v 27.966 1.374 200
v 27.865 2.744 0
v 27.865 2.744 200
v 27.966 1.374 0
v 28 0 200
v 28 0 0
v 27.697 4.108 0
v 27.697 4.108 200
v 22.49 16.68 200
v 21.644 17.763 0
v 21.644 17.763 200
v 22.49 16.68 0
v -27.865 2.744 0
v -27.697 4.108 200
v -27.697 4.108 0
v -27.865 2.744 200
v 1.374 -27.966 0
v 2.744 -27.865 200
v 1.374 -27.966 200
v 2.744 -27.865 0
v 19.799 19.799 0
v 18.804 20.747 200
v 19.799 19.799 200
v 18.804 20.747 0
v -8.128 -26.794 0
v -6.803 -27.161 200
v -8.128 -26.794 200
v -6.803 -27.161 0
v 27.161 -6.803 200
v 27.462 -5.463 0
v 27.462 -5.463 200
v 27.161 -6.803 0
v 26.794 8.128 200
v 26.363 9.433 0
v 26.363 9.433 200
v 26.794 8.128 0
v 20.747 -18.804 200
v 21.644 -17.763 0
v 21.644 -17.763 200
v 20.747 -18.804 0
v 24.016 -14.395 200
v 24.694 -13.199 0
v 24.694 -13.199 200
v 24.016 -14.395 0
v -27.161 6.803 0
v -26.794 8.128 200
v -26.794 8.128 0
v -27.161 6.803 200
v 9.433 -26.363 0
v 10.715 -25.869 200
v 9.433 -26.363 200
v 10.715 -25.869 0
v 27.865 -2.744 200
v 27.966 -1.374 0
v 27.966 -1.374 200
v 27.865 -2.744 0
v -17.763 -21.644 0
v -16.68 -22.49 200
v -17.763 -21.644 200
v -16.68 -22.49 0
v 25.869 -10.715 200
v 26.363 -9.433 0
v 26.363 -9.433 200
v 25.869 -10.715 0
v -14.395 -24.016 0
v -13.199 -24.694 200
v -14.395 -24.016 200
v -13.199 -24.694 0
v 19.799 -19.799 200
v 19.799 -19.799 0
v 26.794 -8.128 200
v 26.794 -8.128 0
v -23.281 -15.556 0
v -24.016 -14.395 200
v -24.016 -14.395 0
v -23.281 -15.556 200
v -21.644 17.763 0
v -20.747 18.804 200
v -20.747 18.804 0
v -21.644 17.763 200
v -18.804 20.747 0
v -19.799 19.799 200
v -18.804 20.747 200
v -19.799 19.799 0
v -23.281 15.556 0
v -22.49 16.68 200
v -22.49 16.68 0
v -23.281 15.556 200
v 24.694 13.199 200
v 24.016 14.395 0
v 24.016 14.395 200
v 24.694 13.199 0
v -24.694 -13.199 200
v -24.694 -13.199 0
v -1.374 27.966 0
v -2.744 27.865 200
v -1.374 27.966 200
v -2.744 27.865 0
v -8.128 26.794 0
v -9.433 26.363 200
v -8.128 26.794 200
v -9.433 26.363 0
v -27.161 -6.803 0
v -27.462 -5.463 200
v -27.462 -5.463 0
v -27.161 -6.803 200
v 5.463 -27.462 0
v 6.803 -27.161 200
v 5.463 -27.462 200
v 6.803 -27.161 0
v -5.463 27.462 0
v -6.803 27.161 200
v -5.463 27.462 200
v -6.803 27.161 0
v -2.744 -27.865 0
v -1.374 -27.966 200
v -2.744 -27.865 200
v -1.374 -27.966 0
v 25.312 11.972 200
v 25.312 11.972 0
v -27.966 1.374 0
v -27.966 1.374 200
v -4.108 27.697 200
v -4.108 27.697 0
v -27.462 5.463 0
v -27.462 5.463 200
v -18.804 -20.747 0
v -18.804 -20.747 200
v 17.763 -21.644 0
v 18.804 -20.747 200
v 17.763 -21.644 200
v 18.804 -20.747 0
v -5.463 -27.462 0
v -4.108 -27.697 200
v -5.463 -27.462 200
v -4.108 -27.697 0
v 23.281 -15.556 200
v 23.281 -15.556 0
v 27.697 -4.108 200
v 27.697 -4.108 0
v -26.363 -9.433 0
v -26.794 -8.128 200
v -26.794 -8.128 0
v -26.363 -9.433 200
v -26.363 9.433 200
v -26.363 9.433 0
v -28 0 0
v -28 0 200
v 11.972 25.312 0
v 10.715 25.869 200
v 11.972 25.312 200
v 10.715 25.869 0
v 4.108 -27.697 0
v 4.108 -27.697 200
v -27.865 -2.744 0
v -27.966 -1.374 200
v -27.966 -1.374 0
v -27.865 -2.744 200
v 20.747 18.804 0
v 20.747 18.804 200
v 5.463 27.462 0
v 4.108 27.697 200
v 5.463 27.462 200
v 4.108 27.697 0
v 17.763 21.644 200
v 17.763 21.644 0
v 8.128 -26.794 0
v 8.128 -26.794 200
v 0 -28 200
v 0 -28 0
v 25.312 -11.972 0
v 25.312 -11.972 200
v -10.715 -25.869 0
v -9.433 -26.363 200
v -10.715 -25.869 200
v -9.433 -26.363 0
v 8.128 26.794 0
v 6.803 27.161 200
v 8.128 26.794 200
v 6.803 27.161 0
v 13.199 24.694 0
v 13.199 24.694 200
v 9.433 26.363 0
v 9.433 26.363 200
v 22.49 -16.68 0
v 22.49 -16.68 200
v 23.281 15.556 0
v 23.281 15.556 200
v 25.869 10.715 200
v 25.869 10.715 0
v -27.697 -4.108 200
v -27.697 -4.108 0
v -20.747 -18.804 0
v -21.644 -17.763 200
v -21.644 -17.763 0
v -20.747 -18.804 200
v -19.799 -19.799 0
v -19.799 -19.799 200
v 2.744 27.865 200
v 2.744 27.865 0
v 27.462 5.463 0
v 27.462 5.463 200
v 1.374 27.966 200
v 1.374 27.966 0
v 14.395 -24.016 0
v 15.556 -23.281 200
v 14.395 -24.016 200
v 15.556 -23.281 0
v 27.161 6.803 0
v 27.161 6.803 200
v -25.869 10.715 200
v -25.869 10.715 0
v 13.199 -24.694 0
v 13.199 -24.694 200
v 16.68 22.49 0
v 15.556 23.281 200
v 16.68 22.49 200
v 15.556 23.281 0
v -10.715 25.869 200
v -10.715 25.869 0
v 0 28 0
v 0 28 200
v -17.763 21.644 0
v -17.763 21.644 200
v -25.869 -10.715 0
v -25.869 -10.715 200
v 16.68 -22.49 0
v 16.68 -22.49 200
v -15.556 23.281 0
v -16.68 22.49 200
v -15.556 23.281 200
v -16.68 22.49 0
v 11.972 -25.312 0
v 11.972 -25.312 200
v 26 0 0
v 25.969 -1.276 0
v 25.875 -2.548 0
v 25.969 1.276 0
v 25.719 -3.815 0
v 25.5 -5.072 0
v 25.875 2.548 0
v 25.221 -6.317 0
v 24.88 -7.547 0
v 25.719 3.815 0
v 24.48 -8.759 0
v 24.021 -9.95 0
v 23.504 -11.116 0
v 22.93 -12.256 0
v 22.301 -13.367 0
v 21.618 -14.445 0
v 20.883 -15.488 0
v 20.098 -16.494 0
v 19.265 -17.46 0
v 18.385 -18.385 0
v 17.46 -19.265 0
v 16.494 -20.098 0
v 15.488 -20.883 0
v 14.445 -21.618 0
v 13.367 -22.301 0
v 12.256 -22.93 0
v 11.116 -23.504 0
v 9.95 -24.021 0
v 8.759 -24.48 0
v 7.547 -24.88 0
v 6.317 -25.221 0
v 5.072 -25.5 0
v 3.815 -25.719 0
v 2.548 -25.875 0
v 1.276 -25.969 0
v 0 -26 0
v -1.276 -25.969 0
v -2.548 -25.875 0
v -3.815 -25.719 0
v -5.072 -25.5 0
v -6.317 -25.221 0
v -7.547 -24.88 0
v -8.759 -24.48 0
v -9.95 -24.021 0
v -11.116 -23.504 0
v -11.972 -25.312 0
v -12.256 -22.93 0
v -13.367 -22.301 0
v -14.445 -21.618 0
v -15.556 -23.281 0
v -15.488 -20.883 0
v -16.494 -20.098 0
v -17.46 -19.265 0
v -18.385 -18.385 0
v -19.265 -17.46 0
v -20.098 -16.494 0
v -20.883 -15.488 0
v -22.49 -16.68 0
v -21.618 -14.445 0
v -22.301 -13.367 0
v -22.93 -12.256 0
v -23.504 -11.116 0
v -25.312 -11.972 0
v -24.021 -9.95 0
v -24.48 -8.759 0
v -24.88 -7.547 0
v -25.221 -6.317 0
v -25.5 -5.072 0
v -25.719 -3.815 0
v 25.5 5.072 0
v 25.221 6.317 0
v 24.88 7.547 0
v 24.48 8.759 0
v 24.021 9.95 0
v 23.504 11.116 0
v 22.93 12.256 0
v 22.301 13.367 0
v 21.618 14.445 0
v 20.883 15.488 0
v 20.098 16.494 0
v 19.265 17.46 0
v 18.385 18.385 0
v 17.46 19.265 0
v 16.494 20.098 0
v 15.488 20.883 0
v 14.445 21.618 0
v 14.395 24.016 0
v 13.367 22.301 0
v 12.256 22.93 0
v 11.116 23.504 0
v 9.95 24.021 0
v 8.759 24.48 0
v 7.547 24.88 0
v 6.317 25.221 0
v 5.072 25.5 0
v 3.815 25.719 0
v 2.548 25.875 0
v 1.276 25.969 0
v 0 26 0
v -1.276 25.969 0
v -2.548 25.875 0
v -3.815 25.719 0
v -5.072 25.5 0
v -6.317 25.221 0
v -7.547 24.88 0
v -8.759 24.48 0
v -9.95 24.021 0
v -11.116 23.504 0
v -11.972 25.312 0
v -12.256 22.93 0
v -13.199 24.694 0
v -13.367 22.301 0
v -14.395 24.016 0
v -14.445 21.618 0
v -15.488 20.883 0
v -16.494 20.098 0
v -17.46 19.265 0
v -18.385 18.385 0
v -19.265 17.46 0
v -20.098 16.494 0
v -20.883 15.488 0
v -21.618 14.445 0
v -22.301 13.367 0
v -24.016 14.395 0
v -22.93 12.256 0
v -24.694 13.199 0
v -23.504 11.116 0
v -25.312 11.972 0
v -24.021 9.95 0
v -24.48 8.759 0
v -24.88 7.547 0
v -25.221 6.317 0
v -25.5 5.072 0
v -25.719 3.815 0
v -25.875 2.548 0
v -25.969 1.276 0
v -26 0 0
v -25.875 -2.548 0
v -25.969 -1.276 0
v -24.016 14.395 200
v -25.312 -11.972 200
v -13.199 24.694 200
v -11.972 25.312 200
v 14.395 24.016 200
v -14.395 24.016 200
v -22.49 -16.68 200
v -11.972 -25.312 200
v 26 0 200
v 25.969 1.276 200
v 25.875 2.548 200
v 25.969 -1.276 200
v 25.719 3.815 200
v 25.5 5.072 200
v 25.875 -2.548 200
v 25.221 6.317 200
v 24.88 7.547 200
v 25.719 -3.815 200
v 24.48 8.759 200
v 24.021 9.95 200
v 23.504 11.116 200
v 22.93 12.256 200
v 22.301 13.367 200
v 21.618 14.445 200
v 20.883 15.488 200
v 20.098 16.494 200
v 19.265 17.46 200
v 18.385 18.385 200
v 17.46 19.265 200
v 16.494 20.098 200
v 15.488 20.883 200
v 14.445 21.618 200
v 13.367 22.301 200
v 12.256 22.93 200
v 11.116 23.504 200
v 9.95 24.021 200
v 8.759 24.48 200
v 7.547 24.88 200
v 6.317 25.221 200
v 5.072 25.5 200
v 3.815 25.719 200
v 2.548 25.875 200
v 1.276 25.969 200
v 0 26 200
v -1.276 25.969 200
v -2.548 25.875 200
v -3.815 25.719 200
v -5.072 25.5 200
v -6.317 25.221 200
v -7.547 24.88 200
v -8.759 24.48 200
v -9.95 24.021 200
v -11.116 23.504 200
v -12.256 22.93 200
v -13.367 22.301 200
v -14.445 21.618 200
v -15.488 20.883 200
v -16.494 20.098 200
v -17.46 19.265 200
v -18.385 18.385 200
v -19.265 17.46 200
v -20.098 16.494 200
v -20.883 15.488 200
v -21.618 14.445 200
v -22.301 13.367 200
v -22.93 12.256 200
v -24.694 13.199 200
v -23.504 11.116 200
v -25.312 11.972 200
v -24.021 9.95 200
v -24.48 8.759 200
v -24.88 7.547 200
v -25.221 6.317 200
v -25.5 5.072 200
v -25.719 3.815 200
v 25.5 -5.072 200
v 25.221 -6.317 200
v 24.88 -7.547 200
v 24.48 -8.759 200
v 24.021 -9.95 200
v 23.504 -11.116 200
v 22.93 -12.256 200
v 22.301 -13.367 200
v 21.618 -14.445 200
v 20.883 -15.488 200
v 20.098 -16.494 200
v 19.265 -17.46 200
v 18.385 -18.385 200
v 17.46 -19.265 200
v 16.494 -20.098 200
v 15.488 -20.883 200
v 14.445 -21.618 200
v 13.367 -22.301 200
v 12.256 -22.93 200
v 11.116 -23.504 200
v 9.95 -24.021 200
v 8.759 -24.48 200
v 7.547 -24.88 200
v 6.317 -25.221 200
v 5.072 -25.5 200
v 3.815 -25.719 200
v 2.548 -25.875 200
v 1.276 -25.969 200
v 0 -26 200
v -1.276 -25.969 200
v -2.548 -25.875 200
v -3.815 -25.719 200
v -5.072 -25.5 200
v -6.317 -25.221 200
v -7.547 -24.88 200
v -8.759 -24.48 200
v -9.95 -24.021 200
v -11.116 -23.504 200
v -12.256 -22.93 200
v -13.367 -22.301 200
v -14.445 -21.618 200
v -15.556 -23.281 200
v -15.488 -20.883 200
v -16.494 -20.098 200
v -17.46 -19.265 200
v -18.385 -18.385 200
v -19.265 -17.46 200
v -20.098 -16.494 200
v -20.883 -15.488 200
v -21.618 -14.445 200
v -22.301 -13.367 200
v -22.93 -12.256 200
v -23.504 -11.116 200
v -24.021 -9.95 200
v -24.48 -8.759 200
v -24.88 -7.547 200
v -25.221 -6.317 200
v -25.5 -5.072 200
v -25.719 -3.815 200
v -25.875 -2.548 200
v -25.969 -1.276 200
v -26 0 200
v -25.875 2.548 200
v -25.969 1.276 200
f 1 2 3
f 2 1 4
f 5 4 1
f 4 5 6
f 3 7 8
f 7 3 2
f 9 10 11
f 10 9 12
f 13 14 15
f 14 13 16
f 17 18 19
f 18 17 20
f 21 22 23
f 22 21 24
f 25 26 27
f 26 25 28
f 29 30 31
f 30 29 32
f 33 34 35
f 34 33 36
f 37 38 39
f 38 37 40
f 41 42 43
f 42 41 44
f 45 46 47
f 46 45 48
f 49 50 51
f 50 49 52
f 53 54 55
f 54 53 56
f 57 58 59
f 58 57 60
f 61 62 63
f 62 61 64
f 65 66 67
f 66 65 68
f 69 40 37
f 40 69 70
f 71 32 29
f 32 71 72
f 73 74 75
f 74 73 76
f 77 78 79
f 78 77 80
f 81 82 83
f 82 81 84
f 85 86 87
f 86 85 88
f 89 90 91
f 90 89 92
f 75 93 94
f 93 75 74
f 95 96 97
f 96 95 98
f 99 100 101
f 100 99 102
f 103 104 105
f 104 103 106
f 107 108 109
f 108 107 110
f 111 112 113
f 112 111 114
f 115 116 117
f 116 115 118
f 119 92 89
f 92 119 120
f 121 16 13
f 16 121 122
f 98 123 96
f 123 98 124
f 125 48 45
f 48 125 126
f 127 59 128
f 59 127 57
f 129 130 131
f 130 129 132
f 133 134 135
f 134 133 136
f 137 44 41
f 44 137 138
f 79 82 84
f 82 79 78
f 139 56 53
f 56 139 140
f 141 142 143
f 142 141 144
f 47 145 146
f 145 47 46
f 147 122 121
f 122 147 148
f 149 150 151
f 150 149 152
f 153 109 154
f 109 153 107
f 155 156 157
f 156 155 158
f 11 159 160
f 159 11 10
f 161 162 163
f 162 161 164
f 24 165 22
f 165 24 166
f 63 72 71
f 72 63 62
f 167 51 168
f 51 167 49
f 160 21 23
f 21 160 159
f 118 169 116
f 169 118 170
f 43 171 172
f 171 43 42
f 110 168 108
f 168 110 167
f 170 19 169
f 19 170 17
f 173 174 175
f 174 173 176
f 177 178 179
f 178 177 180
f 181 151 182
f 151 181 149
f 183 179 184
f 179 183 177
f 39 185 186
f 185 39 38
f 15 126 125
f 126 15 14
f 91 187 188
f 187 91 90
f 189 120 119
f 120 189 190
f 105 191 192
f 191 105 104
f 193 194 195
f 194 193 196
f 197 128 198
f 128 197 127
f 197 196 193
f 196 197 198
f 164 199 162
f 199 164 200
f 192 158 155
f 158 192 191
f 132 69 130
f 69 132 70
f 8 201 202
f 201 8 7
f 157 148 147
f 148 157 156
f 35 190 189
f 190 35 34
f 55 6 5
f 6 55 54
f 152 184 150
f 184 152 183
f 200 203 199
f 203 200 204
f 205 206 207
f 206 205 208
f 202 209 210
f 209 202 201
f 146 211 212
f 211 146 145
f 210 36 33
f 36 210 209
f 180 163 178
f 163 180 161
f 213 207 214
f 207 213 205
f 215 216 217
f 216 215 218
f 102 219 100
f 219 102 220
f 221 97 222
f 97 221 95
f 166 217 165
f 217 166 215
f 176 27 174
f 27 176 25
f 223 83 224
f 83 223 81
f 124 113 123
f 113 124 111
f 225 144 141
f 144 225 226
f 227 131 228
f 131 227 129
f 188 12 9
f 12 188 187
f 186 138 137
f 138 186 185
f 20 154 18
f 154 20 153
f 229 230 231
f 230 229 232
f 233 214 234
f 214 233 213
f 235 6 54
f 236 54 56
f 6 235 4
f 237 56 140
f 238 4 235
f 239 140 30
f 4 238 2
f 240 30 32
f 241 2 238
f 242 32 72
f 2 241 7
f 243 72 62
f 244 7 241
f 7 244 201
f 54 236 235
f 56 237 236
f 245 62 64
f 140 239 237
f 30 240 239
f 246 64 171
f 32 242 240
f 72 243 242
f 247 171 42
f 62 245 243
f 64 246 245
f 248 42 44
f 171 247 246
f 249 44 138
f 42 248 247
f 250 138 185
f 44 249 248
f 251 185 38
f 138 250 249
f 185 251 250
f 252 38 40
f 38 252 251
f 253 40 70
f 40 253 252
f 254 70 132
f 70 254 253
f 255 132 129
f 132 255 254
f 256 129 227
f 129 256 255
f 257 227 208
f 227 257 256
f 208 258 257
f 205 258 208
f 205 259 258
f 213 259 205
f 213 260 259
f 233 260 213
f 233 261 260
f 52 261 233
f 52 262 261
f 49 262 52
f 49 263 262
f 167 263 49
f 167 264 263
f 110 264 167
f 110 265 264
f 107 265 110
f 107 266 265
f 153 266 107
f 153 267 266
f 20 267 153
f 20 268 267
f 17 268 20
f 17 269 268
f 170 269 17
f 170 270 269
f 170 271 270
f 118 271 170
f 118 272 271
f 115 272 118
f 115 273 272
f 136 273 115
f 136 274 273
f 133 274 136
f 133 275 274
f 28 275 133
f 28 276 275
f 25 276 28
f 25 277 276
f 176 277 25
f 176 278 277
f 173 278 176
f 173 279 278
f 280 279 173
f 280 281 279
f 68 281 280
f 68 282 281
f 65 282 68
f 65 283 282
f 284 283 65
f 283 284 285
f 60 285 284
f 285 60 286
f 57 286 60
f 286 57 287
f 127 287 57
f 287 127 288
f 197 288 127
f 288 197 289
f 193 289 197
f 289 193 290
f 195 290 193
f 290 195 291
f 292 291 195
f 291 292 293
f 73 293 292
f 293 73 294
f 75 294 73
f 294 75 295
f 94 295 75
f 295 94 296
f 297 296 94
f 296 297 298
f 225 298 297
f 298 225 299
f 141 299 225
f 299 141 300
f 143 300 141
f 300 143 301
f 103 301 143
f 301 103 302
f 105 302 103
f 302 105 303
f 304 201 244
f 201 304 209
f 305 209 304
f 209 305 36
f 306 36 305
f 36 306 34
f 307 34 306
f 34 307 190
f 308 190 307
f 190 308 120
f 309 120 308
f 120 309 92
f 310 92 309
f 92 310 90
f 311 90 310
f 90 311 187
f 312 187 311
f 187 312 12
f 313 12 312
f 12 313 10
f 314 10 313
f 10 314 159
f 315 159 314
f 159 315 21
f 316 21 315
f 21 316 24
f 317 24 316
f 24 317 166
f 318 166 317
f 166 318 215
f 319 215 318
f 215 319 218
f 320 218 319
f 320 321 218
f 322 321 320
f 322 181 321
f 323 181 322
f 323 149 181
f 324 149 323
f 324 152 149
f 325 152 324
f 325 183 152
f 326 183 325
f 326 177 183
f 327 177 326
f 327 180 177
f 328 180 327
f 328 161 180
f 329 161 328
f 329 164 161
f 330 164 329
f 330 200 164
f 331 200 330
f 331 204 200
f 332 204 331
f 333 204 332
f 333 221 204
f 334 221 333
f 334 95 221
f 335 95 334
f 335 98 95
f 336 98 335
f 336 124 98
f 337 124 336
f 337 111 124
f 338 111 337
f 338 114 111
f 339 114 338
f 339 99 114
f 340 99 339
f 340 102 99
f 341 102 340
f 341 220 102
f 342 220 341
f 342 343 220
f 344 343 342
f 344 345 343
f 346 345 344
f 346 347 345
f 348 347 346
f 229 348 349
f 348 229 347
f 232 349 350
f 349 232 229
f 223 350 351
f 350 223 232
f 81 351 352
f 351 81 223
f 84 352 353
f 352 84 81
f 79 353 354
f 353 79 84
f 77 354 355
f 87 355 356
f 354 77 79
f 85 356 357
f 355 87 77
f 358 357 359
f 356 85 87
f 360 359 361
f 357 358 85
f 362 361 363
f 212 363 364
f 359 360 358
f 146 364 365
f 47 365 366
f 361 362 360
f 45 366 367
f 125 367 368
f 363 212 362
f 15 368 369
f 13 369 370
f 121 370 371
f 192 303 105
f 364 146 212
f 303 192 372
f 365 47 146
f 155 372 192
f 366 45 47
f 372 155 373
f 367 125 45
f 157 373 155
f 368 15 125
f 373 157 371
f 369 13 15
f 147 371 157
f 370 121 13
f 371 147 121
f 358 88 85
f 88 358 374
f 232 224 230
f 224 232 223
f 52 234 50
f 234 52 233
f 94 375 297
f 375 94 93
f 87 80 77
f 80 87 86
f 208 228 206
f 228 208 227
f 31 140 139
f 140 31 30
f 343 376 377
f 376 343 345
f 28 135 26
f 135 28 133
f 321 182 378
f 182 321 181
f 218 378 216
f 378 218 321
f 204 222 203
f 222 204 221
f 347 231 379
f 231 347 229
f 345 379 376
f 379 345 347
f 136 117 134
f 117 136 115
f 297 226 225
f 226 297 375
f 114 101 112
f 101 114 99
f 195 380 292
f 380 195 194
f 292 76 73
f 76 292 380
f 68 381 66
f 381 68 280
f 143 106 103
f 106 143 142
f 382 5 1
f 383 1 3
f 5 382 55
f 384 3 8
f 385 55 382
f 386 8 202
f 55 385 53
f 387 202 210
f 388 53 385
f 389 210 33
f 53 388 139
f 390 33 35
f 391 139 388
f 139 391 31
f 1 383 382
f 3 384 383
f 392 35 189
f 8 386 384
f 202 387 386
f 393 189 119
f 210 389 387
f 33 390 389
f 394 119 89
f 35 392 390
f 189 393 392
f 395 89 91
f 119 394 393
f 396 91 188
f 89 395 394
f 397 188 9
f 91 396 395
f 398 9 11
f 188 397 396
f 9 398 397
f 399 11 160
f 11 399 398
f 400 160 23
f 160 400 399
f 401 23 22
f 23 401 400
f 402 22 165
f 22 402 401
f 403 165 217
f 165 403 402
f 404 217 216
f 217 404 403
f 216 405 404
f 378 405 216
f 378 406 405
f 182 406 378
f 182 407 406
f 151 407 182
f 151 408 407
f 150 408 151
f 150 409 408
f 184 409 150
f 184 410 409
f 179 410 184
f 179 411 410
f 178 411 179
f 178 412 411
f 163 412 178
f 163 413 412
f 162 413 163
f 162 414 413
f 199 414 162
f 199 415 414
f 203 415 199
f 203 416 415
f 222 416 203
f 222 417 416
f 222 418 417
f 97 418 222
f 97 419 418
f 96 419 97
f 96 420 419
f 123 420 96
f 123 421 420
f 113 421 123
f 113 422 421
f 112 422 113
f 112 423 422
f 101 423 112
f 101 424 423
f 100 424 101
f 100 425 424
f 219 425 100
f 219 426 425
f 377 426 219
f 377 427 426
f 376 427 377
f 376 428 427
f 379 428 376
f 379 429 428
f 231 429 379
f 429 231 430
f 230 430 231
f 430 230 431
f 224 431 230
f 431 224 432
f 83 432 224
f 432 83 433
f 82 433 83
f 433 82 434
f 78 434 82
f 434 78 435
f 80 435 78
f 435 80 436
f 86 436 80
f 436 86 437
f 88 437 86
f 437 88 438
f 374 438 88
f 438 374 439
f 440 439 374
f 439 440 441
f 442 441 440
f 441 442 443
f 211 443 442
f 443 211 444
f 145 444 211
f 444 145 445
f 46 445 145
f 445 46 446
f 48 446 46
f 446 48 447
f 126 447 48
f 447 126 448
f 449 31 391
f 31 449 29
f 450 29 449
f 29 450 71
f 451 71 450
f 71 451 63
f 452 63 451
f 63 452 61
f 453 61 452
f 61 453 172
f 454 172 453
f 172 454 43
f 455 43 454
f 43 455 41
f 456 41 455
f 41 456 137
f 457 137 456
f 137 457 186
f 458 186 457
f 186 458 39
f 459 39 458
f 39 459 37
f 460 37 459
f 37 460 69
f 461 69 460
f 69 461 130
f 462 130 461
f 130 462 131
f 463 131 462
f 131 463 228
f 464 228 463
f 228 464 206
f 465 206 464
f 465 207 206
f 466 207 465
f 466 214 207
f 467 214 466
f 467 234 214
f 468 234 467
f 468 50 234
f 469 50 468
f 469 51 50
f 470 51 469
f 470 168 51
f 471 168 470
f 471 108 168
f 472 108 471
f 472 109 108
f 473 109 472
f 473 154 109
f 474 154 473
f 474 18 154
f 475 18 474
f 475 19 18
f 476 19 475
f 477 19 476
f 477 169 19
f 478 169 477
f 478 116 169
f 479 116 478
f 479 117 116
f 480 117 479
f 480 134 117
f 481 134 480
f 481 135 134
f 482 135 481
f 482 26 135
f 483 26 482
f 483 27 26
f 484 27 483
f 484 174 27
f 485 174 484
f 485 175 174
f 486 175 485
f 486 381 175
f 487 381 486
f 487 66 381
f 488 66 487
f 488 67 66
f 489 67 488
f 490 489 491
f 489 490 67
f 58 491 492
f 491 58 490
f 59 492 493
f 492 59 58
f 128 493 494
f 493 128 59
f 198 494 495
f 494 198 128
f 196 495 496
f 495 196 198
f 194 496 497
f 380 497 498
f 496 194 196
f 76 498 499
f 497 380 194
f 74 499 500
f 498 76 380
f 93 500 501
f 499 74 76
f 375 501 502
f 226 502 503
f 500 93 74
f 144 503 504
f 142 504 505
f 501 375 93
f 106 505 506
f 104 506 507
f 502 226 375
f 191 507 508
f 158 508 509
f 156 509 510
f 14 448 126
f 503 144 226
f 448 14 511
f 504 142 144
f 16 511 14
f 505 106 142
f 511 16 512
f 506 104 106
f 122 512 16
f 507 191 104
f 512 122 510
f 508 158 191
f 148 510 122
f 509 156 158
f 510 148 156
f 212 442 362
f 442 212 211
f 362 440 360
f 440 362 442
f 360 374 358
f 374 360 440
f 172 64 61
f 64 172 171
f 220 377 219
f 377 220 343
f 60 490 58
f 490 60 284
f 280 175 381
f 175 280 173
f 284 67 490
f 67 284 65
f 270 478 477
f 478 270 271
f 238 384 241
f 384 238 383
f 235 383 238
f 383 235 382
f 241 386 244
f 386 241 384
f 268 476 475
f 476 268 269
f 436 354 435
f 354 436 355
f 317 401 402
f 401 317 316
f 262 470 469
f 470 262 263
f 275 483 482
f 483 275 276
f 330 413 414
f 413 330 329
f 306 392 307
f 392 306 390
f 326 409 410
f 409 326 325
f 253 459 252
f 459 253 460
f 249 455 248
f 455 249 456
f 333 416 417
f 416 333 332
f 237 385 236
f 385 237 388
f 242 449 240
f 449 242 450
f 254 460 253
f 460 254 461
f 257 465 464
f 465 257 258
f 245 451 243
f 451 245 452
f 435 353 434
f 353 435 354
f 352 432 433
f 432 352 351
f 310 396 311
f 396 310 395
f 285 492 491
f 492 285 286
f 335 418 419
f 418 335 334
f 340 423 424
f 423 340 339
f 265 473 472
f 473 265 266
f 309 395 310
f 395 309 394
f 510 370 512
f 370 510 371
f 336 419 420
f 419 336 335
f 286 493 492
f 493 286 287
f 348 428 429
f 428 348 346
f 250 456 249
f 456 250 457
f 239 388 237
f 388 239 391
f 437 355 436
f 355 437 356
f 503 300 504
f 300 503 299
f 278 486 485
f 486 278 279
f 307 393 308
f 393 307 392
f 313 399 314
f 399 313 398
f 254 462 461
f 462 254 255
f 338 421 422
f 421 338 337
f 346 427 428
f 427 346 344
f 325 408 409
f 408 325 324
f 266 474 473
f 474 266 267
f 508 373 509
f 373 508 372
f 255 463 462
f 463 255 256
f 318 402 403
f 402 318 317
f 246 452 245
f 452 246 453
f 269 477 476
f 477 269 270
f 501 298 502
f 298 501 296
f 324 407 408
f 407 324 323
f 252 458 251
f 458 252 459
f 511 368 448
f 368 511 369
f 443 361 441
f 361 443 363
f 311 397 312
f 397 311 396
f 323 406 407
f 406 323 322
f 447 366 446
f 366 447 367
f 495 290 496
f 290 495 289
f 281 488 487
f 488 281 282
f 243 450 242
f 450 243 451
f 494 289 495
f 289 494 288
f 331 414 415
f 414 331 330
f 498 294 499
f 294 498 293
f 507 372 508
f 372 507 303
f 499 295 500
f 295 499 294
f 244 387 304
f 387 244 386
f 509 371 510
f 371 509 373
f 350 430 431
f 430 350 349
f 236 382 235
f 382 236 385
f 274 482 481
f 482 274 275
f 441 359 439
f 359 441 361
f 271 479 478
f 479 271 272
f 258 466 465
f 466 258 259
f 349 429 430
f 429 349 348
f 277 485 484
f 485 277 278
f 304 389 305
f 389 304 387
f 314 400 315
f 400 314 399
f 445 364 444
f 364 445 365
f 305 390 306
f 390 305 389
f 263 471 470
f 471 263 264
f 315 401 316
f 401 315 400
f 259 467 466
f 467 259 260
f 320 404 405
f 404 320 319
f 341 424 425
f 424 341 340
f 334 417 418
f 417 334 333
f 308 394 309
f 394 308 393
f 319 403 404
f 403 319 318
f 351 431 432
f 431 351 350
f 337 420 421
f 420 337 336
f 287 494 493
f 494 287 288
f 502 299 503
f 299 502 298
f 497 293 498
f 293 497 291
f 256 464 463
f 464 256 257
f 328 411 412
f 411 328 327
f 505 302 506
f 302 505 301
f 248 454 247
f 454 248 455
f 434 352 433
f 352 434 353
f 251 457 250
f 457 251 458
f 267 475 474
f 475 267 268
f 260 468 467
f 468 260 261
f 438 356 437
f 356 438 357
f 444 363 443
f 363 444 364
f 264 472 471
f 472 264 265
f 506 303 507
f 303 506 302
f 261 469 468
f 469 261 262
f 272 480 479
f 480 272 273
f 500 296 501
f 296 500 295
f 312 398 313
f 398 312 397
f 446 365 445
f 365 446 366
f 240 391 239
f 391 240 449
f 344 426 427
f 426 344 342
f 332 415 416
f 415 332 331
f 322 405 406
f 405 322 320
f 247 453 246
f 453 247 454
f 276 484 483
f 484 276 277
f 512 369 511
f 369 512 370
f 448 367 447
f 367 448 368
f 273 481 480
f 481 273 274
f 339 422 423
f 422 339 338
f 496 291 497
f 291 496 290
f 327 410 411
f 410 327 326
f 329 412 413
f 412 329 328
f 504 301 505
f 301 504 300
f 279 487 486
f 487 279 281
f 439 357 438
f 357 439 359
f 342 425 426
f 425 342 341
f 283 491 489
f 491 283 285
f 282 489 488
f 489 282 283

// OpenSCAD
// Galilean Main Tube (主镜筒)
// 全长200mm，普通3D打印机可竖立打印完成

tube_length = 200;
tube_od = 56;
tube_id = 52;

module main_tube() {
    difference() {
        cylinder(d=tube_od, h=tube_length, $fn=128);
        translate([0, 0, -1])
        cylinder(d=tube_id, h=tube_length + 2, $fn=128);
    }
}

main_tube();
